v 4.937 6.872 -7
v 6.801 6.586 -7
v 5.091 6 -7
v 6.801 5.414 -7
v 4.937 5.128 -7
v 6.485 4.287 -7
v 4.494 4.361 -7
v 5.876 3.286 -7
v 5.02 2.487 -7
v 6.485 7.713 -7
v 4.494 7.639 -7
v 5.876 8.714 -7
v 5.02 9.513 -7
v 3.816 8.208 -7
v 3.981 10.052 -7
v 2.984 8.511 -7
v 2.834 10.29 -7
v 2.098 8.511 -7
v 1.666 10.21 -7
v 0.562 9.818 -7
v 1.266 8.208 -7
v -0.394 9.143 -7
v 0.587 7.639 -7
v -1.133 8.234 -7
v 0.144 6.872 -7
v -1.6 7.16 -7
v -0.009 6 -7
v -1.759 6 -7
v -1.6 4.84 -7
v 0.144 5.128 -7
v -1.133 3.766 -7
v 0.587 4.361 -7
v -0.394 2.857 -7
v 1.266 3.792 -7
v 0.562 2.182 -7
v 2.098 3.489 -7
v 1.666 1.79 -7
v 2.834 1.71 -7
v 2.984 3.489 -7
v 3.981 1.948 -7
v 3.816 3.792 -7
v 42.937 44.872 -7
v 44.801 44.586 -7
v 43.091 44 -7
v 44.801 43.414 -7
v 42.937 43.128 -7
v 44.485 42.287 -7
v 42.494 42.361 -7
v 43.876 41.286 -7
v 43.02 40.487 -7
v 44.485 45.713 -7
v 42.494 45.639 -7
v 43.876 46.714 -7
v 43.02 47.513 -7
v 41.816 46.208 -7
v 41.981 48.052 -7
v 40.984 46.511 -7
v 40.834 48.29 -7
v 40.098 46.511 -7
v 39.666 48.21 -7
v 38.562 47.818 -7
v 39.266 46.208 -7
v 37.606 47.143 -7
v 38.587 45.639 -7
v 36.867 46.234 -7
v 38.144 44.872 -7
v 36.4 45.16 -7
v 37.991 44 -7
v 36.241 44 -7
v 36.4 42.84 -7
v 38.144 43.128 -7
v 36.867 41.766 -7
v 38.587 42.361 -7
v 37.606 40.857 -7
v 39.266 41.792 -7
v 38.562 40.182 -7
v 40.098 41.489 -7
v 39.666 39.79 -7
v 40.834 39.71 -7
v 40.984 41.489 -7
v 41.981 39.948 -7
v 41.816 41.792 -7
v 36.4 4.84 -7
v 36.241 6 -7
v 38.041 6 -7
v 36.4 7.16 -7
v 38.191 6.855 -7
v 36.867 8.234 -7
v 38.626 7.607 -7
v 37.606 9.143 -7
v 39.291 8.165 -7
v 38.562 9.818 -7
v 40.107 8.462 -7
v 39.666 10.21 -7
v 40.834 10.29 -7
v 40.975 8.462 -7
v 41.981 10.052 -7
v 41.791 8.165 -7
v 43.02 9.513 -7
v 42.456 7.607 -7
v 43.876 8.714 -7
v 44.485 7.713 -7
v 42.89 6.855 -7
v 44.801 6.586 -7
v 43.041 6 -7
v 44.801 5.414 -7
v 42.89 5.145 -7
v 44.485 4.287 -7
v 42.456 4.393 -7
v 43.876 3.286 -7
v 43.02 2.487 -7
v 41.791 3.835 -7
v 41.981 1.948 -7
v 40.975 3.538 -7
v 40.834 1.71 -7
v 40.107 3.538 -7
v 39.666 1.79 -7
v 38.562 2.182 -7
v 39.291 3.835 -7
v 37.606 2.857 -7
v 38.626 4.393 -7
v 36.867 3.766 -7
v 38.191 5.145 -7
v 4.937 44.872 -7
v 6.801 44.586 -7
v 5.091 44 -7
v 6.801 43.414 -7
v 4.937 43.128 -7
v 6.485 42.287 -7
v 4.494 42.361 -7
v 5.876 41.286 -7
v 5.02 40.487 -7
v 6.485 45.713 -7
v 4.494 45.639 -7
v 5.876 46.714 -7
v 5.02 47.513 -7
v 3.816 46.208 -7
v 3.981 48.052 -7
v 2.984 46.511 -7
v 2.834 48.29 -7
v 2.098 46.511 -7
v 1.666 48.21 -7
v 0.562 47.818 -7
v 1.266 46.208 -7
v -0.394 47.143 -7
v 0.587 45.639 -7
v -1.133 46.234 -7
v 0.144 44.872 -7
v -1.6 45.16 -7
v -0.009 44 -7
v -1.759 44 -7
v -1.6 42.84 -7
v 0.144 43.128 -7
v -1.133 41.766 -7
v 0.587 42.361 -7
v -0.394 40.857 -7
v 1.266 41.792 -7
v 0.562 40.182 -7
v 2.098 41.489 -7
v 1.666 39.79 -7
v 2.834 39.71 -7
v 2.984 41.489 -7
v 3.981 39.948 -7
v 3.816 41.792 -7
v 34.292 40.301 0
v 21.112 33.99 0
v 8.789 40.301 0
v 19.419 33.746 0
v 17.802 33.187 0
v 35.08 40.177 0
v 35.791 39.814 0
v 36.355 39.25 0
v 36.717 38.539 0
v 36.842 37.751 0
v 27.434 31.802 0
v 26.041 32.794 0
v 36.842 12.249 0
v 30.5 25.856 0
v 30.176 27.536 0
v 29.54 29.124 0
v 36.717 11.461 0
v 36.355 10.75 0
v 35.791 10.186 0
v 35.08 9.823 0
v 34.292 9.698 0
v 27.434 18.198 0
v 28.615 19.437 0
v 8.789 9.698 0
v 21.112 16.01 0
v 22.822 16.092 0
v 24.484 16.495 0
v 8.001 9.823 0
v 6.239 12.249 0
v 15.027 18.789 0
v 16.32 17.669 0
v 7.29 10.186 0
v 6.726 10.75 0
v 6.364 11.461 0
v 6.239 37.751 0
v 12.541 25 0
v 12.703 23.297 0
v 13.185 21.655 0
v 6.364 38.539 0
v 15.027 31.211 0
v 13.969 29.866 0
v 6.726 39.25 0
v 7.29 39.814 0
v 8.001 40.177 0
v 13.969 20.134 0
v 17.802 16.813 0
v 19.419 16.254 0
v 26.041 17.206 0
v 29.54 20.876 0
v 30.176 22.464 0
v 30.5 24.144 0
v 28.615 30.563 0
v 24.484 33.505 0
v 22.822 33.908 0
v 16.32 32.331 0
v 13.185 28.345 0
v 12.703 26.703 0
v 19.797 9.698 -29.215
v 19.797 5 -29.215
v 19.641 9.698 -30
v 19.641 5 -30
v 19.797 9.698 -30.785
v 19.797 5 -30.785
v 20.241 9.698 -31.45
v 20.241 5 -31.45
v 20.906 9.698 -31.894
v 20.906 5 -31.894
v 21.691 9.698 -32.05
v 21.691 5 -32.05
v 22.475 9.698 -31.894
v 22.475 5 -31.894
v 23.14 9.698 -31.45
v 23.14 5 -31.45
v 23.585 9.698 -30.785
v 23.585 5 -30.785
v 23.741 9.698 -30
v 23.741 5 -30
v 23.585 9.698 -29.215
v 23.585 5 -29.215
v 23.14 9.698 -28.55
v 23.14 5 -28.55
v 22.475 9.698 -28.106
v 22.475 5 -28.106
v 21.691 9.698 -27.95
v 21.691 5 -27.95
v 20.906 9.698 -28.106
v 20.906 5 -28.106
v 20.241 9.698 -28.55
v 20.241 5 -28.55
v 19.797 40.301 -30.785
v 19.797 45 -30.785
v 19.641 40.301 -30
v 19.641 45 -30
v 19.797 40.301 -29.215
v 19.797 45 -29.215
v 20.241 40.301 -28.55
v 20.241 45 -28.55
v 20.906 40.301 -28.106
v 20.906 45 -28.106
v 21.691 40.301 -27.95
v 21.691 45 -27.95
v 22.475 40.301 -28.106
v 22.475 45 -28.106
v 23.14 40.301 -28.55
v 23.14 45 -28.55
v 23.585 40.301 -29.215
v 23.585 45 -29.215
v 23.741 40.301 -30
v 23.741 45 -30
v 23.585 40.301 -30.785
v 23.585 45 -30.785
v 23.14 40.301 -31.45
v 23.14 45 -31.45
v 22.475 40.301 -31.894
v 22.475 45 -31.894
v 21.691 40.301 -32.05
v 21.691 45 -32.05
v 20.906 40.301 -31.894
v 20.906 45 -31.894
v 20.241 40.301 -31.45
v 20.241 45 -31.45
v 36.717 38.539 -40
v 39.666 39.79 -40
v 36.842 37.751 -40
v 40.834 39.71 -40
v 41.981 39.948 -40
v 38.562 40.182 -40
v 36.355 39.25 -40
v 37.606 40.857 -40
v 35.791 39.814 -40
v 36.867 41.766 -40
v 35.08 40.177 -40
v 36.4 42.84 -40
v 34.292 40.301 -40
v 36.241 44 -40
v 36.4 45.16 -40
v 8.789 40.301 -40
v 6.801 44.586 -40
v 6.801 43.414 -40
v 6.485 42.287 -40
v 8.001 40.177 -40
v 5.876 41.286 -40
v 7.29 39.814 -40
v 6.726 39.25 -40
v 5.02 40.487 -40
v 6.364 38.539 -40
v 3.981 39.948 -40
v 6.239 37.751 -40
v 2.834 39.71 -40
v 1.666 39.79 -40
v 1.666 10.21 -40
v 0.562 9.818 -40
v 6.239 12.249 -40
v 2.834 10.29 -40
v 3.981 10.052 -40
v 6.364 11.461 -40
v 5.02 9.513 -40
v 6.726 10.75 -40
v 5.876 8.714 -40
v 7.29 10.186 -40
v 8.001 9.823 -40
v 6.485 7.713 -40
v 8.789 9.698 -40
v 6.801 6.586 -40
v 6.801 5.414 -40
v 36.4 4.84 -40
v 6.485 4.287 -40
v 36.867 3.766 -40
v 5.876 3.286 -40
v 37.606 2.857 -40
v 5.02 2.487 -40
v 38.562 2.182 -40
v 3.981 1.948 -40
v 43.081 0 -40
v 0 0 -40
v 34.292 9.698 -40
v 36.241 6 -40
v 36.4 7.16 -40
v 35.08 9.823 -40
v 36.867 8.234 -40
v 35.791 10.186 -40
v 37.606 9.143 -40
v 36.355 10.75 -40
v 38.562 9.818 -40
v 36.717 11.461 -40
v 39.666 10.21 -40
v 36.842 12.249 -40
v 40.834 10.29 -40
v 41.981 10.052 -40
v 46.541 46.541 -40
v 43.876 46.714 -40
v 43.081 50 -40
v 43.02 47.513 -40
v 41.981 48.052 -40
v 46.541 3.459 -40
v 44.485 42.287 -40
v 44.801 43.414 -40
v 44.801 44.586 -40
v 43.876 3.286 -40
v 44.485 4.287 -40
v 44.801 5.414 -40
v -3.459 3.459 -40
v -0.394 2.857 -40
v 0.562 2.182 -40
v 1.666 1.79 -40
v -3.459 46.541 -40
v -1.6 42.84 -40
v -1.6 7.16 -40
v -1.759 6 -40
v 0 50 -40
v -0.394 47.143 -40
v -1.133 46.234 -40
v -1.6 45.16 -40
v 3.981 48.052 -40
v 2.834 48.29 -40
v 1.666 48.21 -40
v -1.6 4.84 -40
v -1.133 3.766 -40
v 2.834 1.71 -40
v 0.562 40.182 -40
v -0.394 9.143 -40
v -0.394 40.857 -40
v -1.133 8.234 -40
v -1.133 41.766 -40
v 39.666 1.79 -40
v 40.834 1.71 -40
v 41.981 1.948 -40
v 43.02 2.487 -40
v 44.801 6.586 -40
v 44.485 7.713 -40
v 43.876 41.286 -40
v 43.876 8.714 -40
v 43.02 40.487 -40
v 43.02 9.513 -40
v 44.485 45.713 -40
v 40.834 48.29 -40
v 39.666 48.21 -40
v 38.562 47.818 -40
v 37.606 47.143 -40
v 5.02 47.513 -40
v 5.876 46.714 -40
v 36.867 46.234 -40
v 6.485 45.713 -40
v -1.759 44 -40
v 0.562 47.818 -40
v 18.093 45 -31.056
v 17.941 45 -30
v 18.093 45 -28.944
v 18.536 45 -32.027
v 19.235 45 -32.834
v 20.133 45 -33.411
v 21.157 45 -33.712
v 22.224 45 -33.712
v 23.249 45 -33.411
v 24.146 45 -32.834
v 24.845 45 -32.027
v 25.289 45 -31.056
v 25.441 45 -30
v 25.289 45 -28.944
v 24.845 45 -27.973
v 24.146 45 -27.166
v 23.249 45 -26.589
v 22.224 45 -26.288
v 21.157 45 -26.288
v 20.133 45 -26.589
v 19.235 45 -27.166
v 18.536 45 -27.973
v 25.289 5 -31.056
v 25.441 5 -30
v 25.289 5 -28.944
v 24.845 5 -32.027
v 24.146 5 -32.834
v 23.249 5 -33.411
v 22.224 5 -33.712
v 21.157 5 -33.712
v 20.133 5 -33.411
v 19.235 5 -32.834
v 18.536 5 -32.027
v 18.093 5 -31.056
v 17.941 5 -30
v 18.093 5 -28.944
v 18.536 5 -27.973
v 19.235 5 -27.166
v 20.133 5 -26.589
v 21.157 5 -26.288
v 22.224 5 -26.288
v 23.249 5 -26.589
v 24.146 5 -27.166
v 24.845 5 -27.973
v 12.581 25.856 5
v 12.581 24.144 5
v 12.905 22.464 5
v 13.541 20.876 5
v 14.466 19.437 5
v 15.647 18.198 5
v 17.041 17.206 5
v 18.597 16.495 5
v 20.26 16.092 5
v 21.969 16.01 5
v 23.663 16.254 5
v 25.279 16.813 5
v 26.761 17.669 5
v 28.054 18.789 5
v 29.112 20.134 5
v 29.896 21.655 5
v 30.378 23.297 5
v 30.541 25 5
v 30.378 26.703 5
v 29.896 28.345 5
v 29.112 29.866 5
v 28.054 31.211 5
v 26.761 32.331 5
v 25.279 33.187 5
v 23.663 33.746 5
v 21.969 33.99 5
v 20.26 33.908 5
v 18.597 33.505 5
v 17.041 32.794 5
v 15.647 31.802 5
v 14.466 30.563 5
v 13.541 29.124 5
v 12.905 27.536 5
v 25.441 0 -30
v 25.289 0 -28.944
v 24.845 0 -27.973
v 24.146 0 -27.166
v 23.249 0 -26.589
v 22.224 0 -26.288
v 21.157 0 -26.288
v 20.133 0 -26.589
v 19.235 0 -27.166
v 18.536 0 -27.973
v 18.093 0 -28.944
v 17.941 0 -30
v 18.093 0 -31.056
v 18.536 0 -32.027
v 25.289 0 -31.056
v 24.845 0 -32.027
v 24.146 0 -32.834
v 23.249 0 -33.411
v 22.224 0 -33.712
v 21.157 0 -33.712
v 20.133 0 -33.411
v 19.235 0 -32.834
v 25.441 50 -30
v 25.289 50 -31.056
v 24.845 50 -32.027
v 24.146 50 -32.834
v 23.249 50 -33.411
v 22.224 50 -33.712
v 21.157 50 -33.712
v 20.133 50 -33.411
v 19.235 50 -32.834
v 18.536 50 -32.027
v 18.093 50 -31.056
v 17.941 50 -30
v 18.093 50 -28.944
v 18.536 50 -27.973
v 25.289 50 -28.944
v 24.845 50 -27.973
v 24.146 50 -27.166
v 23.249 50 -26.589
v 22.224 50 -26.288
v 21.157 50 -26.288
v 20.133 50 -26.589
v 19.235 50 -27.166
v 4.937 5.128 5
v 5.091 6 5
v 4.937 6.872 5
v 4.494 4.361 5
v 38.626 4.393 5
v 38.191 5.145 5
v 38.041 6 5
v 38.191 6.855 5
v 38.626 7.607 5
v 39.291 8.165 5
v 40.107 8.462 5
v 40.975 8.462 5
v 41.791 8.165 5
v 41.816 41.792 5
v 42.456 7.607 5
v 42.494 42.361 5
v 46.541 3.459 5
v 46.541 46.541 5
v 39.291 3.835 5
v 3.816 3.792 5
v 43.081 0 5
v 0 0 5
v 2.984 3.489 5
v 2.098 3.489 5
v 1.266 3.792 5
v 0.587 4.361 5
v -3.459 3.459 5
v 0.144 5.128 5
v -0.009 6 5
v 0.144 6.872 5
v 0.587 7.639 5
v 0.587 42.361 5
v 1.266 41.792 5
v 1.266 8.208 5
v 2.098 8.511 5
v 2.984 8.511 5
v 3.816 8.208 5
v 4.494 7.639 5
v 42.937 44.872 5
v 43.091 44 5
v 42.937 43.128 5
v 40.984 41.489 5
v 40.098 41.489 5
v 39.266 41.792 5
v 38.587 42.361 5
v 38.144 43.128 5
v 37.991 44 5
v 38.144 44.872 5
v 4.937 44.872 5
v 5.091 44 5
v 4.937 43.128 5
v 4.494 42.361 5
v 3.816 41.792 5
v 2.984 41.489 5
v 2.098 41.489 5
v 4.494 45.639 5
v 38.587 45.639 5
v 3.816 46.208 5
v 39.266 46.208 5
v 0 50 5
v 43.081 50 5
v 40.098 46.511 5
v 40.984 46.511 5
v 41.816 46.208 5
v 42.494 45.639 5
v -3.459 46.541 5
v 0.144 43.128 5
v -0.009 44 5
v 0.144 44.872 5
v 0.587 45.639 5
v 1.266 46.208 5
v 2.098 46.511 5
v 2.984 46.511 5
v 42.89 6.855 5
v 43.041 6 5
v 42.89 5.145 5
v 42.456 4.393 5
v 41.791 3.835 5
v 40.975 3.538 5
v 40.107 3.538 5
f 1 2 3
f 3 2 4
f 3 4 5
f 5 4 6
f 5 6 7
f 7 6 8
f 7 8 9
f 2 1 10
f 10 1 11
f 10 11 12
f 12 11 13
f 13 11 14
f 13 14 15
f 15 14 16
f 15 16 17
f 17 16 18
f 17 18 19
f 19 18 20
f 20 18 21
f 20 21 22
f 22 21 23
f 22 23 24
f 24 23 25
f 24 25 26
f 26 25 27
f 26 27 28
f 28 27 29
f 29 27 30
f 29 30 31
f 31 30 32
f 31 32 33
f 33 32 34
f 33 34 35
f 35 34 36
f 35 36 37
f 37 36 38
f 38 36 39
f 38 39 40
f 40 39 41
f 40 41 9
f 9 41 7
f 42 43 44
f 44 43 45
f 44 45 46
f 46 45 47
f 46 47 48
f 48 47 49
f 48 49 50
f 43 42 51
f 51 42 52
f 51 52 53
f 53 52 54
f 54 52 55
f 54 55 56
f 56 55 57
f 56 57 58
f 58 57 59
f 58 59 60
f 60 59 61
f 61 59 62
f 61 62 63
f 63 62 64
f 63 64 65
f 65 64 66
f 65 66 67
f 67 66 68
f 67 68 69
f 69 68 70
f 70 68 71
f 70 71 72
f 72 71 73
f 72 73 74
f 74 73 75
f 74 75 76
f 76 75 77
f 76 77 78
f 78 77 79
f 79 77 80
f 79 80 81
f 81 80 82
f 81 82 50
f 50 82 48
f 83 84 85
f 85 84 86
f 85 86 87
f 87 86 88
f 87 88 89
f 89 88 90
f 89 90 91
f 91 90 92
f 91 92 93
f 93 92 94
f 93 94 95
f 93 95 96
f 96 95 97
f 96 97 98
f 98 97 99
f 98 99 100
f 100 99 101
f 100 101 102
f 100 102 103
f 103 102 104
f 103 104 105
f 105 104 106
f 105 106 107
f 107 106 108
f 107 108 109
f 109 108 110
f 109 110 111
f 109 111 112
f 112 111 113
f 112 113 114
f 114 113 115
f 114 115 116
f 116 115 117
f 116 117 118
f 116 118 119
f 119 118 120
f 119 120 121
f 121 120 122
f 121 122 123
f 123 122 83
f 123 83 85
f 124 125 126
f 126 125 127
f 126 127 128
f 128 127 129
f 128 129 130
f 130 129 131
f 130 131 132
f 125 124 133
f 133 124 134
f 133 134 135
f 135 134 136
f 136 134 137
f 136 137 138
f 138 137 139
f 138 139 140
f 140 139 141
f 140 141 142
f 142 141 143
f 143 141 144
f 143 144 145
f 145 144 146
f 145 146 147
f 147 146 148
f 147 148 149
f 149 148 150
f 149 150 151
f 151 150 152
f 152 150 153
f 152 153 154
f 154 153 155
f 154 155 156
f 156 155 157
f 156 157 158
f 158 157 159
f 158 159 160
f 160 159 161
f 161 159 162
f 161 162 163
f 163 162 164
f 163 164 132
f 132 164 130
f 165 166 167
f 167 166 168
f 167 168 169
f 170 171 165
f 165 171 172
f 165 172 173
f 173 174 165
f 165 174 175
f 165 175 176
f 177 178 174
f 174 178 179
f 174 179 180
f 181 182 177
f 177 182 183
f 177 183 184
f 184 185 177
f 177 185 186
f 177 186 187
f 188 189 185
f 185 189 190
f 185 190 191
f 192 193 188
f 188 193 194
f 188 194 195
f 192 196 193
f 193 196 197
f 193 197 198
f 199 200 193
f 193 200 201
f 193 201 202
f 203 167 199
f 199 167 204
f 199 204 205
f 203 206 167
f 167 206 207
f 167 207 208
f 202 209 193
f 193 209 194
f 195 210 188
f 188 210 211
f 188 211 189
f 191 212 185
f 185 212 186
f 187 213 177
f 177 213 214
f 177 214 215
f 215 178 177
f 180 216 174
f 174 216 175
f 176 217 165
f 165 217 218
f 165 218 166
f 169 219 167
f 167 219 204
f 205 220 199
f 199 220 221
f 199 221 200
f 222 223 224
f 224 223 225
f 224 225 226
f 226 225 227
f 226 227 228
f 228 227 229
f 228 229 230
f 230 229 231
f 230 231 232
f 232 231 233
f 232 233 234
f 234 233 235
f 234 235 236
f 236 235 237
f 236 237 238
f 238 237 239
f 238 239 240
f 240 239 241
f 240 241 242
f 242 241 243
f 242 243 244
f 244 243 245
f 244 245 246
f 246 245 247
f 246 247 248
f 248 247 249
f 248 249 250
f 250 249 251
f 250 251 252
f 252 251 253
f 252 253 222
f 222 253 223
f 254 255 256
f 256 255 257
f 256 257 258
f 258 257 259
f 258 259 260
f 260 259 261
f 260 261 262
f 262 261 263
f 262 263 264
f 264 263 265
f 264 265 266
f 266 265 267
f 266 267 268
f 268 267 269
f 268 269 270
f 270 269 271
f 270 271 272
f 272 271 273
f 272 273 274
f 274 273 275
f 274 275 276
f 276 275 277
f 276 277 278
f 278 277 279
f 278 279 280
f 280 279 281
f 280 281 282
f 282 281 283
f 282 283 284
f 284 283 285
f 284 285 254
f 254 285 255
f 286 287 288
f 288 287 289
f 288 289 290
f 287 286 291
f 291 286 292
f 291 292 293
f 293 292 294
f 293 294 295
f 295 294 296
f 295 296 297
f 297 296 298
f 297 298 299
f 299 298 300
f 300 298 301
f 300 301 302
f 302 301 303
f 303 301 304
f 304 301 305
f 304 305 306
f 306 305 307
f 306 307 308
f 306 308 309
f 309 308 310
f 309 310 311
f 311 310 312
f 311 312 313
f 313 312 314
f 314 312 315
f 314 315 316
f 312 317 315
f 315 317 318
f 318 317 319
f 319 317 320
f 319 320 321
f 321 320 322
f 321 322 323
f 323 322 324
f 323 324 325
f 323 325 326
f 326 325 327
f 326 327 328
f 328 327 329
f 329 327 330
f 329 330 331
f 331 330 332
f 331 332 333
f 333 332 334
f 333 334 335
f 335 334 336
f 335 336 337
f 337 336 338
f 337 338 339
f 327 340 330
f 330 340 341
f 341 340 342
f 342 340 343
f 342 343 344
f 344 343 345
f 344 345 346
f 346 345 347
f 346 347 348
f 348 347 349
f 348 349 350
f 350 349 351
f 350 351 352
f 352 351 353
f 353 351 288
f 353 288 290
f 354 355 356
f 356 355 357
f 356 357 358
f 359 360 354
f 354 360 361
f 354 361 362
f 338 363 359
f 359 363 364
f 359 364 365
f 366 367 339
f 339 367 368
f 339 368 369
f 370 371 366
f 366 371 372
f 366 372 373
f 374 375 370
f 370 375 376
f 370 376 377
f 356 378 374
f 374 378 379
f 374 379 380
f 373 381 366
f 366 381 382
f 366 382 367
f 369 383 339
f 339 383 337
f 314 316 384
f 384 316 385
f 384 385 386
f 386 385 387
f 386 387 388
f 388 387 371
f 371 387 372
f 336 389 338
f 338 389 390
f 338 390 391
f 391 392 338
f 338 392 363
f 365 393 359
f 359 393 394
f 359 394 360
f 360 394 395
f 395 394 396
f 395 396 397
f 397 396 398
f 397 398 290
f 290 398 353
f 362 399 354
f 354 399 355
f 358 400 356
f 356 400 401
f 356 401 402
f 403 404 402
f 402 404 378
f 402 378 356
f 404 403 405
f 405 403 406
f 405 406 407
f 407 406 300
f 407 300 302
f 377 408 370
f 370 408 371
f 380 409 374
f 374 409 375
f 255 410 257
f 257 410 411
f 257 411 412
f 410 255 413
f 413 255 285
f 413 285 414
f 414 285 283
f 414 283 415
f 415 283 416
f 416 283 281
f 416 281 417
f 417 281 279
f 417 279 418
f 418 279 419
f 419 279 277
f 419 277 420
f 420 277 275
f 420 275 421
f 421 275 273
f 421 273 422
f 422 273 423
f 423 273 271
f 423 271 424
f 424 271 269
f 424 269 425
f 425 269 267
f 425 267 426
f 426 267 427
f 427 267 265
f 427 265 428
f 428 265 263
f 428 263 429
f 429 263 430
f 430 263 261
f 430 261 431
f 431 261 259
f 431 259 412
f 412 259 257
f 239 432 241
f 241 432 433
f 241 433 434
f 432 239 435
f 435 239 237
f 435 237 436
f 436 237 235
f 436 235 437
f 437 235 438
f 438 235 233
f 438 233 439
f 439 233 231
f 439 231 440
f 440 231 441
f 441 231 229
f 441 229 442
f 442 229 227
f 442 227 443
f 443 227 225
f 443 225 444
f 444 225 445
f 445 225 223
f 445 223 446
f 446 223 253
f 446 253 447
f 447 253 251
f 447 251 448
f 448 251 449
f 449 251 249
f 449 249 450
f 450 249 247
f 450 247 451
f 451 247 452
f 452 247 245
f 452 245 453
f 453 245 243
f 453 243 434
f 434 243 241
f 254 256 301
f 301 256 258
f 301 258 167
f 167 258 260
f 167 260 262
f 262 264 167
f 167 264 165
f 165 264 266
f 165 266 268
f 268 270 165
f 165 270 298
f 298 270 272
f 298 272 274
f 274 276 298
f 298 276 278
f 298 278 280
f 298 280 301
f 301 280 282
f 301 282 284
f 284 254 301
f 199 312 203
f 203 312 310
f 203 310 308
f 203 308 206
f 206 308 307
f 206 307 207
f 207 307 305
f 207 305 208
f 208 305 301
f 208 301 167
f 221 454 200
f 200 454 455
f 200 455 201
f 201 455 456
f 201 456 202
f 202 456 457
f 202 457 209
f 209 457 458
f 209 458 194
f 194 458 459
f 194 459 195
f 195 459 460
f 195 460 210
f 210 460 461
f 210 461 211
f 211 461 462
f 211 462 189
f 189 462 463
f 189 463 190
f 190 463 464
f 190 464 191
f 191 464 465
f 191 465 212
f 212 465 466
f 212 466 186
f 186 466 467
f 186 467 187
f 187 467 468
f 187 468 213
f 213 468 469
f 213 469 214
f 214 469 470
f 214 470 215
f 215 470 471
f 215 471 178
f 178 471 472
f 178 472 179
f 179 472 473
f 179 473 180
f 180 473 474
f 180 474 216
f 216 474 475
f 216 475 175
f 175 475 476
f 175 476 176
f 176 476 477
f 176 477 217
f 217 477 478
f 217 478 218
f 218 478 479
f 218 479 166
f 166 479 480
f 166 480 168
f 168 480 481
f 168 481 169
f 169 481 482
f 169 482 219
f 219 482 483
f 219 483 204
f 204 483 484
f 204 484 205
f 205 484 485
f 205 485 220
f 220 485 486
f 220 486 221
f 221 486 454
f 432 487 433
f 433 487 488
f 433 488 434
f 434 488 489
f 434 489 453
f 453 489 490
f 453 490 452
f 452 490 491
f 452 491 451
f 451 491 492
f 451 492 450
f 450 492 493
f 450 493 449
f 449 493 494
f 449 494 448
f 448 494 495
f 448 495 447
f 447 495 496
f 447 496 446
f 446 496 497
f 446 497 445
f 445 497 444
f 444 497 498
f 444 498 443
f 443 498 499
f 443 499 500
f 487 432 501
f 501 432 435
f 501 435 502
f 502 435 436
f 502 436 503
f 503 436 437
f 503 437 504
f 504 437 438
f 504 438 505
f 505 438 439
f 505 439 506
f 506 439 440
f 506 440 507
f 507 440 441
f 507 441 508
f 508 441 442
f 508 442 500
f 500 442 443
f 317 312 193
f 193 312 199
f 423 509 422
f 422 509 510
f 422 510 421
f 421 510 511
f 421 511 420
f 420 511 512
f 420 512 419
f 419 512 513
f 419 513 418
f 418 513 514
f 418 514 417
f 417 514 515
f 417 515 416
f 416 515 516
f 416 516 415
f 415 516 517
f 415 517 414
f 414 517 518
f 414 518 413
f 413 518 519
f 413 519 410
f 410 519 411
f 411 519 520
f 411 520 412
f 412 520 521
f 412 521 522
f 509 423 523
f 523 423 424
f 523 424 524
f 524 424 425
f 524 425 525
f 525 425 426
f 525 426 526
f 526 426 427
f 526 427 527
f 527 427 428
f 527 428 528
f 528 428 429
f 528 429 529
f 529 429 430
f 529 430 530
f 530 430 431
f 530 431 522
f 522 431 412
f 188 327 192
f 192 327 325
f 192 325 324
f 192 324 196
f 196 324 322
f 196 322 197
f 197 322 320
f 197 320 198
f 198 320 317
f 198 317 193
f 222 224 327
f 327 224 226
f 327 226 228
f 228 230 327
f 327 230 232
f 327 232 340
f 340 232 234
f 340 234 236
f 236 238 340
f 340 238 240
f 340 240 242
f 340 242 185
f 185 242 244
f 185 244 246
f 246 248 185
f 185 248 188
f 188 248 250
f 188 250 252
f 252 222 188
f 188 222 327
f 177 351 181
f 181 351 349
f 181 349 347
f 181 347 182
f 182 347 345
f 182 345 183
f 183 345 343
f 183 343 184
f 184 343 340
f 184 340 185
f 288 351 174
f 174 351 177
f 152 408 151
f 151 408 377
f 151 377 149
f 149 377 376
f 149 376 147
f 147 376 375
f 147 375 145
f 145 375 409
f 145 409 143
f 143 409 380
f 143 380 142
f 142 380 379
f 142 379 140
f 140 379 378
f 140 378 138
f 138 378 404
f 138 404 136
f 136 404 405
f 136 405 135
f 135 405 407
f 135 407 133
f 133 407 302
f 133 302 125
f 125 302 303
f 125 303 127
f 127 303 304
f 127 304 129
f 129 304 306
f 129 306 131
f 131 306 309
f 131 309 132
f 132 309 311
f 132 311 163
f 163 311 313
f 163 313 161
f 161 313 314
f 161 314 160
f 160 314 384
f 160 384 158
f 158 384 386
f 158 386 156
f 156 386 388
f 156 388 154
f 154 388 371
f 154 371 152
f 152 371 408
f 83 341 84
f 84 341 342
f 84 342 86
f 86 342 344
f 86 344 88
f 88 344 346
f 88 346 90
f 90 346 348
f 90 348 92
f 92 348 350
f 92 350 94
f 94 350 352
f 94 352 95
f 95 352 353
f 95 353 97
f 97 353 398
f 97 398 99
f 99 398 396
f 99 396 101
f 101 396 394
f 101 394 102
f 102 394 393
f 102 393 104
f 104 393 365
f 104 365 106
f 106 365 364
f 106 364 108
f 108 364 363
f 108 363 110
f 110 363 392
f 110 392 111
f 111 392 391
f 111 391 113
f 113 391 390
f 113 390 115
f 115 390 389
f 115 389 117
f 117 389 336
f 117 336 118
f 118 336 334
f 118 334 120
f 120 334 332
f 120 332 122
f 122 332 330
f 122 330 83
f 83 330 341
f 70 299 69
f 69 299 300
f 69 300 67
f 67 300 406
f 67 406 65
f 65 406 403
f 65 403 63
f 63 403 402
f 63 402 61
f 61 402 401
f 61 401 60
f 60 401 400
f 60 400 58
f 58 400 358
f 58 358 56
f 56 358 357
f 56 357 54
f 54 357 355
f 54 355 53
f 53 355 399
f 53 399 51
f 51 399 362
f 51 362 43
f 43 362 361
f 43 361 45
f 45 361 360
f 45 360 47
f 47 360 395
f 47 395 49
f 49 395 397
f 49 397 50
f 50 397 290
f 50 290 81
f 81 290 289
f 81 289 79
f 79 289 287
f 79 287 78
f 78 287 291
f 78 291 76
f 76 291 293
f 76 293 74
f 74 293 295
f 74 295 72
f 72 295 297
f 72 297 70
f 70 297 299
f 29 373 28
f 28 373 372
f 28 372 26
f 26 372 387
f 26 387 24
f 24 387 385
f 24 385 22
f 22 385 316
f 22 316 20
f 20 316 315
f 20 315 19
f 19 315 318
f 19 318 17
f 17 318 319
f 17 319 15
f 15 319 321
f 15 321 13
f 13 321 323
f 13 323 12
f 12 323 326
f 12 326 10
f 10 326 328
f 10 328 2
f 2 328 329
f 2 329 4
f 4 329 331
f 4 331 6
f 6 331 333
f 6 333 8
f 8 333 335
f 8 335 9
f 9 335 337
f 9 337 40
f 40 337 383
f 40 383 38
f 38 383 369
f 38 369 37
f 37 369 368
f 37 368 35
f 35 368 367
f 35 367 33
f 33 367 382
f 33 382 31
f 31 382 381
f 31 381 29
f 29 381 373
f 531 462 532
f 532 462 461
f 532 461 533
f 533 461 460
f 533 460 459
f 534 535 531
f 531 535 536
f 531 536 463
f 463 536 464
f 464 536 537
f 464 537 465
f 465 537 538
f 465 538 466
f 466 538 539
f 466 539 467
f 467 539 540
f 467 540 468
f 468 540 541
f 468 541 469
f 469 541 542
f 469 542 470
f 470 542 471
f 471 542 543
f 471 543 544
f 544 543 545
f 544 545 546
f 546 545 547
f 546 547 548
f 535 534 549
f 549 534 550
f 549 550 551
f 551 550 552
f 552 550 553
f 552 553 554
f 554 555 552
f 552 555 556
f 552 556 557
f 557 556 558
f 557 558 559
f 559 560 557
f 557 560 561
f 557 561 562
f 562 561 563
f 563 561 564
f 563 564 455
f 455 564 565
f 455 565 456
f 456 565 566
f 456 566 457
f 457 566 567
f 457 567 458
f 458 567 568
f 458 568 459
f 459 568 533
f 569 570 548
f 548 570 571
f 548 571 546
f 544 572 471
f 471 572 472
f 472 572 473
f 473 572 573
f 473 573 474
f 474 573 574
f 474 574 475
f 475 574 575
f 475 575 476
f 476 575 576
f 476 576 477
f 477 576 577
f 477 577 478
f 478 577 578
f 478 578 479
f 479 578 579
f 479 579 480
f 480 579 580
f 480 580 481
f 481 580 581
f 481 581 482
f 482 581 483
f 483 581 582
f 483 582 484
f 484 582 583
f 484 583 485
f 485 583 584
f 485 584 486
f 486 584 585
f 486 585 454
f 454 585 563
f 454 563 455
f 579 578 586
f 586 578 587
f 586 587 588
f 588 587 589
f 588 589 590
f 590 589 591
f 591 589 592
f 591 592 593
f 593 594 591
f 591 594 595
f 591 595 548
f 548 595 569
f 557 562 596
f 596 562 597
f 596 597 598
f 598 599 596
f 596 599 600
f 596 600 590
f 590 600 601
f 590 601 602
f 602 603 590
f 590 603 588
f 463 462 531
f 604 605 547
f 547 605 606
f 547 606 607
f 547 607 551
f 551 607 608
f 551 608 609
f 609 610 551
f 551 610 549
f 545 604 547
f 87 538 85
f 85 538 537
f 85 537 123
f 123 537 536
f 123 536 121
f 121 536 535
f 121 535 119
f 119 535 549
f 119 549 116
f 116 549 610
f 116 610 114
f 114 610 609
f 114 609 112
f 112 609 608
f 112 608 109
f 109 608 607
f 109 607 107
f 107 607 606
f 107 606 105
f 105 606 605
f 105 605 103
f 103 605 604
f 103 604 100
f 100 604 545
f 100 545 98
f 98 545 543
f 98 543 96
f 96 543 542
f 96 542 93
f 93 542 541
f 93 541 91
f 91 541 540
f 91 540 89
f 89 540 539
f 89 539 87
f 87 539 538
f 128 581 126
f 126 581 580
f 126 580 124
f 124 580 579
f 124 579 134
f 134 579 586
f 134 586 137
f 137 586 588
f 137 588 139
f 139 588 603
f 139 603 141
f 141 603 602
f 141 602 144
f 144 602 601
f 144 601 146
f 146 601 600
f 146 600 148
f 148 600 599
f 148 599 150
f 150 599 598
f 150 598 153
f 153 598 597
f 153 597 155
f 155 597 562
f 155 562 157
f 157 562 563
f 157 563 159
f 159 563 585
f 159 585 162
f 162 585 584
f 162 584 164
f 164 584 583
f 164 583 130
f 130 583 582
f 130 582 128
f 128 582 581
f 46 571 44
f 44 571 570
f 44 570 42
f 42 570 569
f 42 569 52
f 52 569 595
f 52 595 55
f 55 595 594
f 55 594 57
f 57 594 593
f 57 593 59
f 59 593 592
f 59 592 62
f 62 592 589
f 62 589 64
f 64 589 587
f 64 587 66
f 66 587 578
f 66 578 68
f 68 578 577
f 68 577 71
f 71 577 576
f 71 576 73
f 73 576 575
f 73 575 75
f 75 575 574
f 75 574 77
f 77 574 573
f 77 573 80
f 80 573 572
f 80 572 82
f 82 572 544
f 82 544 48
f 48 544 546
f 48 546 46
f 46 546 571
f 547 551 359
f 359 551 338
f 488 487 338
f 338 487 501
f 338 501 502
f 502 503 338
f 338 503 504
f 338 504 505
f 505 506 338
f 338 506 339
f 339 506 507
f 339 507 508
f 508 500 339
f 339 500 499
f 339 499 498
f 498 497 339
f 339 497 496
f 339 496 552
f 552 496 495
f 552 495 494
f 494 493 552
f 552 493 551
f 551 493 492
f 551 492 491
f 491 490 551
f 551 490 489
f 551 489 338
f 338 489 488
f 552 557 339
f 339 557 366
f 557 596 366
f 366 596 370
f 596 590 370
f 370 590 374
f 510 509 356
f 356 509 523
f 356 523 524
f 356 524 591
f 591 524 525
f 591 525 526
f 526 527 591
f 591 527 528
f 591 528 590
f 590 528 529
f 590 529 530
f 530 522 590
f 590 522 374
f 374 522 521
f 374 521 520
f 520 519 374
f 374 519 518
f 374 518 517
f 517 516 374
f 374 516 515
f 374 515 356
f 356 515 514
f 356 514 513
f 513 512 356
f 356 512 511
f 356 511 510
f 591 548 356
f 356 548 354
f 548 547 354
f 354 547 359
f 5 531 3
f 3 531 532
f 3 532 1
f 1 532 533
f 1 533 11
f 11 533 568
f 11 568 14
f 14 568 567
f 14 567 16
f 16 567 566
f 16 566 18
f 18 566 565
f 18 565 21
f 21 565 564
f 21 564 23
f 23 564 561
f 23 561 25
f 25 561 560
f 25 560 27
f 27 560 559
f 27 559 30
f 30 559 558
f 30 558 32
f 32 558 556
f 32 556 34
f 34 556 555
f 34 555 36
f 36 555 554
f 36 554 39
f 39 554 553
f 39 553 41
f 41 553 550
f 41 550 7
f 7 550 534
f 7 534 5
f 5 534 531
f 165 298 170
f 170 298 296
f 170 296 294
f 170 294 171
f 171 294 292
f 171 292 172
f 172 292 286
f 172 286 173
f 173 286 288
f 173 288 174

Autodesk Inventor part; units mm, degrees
ref_plane "YZ Plane" through (0, 0, 0) normal (1, 0, 0) x (0, 1, 0)
ref_plane "XZ Plane" through (0, 0, 0) normal (0, 1, 0) x (-1, 0, 0)
ref_plane "XY Plane" through (0, 0, 0) normal (0, 0, 1) x (1, 0, 0)
sketch "Sketch11" plane through (0, 0, 0) normal (0, 0, 1) x (1, 0, 0)
  line L0 (-3.4593, 3.4593) -> (0, 0)
  line L1 (-3.4593, 3.4593) -> (-3.4593, 46.5407)
  line L2 (0, 50) -> (-3.4593, 46.5407)
  line L3 (43.0814, 50) -> (0, 50)
  line L4 (46.5407, 46.5407) -> (43.0814, 50)
  line L5 (46.5407, 3.4593) -> (46.5407, 46.5407)
  line L6 (43.0814, 0) -> (46.5407, 3.4593)
  line L7 (43.0814, 0) -> (0, 0)
extrude "Extrusion8" add sketch "Sketch11" along normal blind 5
sketch "Sketch16" plane through (0, 0, 0) normal (0, 0, -1) x (-1, 0, 0)
  line L0 (-27.0407, 40) -> (-34.0407, 40)
  line L1 (-36.5407, 37.5) -> (-36.5407, 30.5)
  arc A0 (-34.0407, 40) -> (-36.5407, 37.5) centre (-34.0407, 37.5) ccw
  line L2 (-9.0407, 40) -> (-16.0407, 40)
  arc A1 (-6.5407, 37.5) -> (-9.0407, 40) centre (-9.0407, 37.5) ccw
  line L3 (-6.5407, 30.5) -> (-6.5407, 37.5)
  line L4 (-6.5407, 12.5) -> (-6.5407, 19.5)
  arc A2 (-9.0407, 10) -> (-6.5407, 12.5) centre (-9.0407, 12.5) ccw
  line L5 (-16.0407, 10) -> (-9.0407, 10)
  line L6 (-34.0407, 10) -> (-27.0407, 10)
  arc A3 (-36.5407, 12.5) -> (-34.0407, 10) centre (-34.0407, 12.5) ccw
  line L7 (-36.5407, 19.5) -> (-36.5407, 12.5)
  line L8 (0, 50) -> (3.4593, 46.5407) projected
  line L9 (-43.0814, 0) -> (-46.5407, 3.4593) projected
  line L10 (-46.5407, 46.5407) -> (-43.0814, 50) projected
  line L11 (-43.0814, 0) -> (-43.0814, 50)
  line L12 (3.4593, 3.4593) -> (0, 0) projected
  line L13 (-6.5407, 30.5) -> (-6.5407, 19.5)
  line L14 (-16.0407, 40) -> (-27.0407, 40)
  line L15 (-36.5407, 30.5) -> (-36.5407, 19.5)
  line L16 (-27.0407, 10) -> (-16.0407, 10)
  circle A4 centre (-2.5407, 44) radius 2.5
  circle A5 centre (-40.5407, 6) radius 2.5
  circle A6 centre (-2.5407, 6) radius 2.5
  circle A7 centre (-40.5407, 44) radius 2.5
  line L17 (0, 50) -> (3.4593, 46.5407)
  line L18 (3.4593, 46.5407) -> (3.4593, 3.4593) projected
  line L19 (0, 0) -> (-43.0814, 0) projected
  line L20 (3.4593, 3.4593) -> (0, 0)
  line L21 (0, 0) -> (-43.0814, 0)
  line L22 (-43.0814, 0) -> (-46.5407, 3.4593) projected
  line L23 (-43.0814, 0) -> (-46.5407, 3.4593)
  line L24 (-46.5407, 3.4593) -> (-46.5407, 46.5407) projected
  line L25 (-46.5407, 3.4593) -> (-46.5407, 46.5407)
  line L26 (-46.5407, 46.5407) -> (-43.0814, 50)
  line L27 (0, 50) -> (-43.0814, 50) projected
  line L28 (0, 50) -> (-43.0814, 50)
  dimension "d44" = 5
  dimension "d45" = 5
  dimension "d46" = 5
  dimension "d47" = 5
extrude "Extrusion11" add sketch "Sketch16" along normal blind 15
sketch "Sketch18" plane through (0, 0, -15) normal (0, 0, -1) x (-1, 0, 0)
  circle A0 centre (-2.5407, 6) radius 2.5 projected
  circle A1 centre (-2.5407, 6) radius 2.5
  circle A2 centre (-40.5407, 6) radius 2.5 projected
  circle A3 centre (-40.5407, 6) radius 2.5
  circle A4 centre (-40.5407, 44) radius 2.5 projected
  circle A5 centre (-40.5407, 44) radius 2.5
  circle A6 centre (-2.5407, 44) radius 2.5 projected
  circle A7 centre (-2.5407, 44) radius 2.5
  point P0 (0, 0)
extrude "Extrusion12" cut sketch "Sketch18" against normal blind 100
sketch "Sketch19" plane through (0, 0, -15) normal (0, 0, -1) x (-1, 0, 0)
  circle A0 centre (-2.5407, 6) radius 2.5 projected
  circle A1 centre (-2.5407, 6) radius 4.3
  circle A2 centre (-40.5407, 6) radius 2.5 projected
  circle A3 centre (-40.5407, 6) radius 4.3
  circle A4 centre (-2.5407, 44) radius 2.5 projected
  circle A5 centre (-2.5407, 44) radius 4.3
  circle A6 centre (-40.5407, 44) radius 2.5 projected
  circle A7 centre (-40.5407, 44) radius 4.3
  point P0 (0, 0)
  dimension "d54" = 8.6
  dimension "d55" = 8.6
  dimension "d56" = 8.6
  dimension "d57" = 8.6
extrude "Extrusion13" cut sketch "Sketch19" against normal blind 10 contours A0 | A1 | A2 | A3 | A5 | A6 | A7
sketch "Sketch20" plane through (0, 0, -15) normal (0, 0, -1) x (-1, 0, 0)
  line L0 (0, 50) -> (-43.0814, 50) projected
  line L1 (-43.0814, 50) -> (-46.5407, 46.5407) projected
  line L2 (-46.5407, 46.5407) -> (-46.5407, 3.4593) projected
  line L3 (-46.5407, 3.4593) -> (-43.0814, 0) projected
  line L4 (-43.0814, 0) -> (0, 0) projected
  line L5 (0, 0) -> (3.4593, 3.4593) projected
  line L6 (3.4593, 3.4593) -> (3.4593, 46.5407) projected
  line L7 (3.4593, 46.5407) -> (0, 50) projected
  circle A0 centre (-2.5407, 44) radius 4.3 projected
  circle A1 centre (-40.5407, 44) radius 4.3 projected
  circle A2 centre (-40.5407, 6) radius 4.3 projected
  circle A3 centre (-2.5407, 6) radius 4.3 projected
  arc A4 (-9.0407, 10) -> (-6.5407, 12.5) centre (-9.0407, 12.5) ccw projected
  line L8 (-9.0407, 10) -> (-34.0407, 10) projected
  line L9 (-36.5407, 12.5) -> (-36.5407, 37.5) projected
  arc A5 (-36.5407, 12.5) -> (-34.0407, 10) centre (-34.0407, 12.5) ccw projected
  line L10 (-6.5407, 37.5) -> (-6.5407, 12.5) projected
  arc A6 (-6.5407, 37.5) -> (-9.0407, 40) centre (-9.0407, 37.5) ccw projected
  line L11 (-34.0407, 40) -> (-9.0407, 40) projected
  arc A7 (-34.0407, 40) -> (-36.5407, 37.5) centre (-34.0407, 37.5) ccw projected
extrude "Extrusion14" add sketch "Sketch20" along normal blind 25
sketch "Sketch21" plane through (0, 50, 5) normal (0, 1, 0) x (1, 0, 0)
  line L0 (-1.7593, 45) -> (6.8407, 45) projected
  circle A0 centre (21.6907, 35) radius 2
  dimension "d63" = 4
extrude "Extrusion15" cut sketch "Sketch21" against normal blind 500
sketch "Sketch22" plane through (0, 50, 5) normal (0, 1, 0) x (1, 0, 0)
  circle A0 centre (21.6907, 35) radius 2 projected
  circle A1 centre (21.6907, 35) radius 3.75
  point P0 (0, 5)
  dimension "d67" = 7.5
extrude "Extrusion16" cut sketch "Sketch22" against normal blind 5 contours A0 | A1
sketch "Sketch23" plane through (0, 0, 5) normal (0, -1, 0) x (1, 0, 0)
  circle A0 centre (21.6907, -35) radius 2 projected
  circle A1 centre (21.6907, -35) radius 3.75
  point P0 (0, -5)
  dimension "d70" = 7.5
extrude "Extrusion17" cut sketch "Sketch23" against normal blind 5
sketch "Sketch25" plane through (0, 0, 5) normal (0, 0, 1) x (1, 0, 0)
  circle A0 centre (2.5407, 6) radius 2.5 projected
  circle A1 centre (40.5407, 44) radius 2.5 projected
  circle A2 centre (2.5407, 44) radius 2.5 projected
  circle A3 centre (40.5407, 6) radius 4.3 projected
  circle A4 centre (21.5407, 25) radius 9
  point P0 (0, 0)
  dimension "d75" = 18
extrude "Extrusion18" cut sketch "Sketch25" against normal blind 20 contours A4
sketch "Sketch26" plane through (0, 0, -40) normal (0, 0, -1) x (-1, 0, 0)
  circle A0 centre (-21.5407, 25) radius 9 projected
  arc A1 (-6.5407, 37.5) -> (-9.0407, 40) centre (-9.0407, 37.5) ccw projected
  line L0 (-9.0407, 40) -> (-34.0407, 40) projected
  arc A2 (-34.0407, 40) -> (-36.5407, 37.5) centre (-34.0407, 37.5) ccw projected
  line L1 (-36.5407, 37.5) -> (-36.5407, 12.5) projected
  arc A3 (-36.5407, 12.5) -> (-34.0407, 10) centre (-34.0407, 12.5) ccw projected
  line L2 (-34.0407, 10) -> (-9.0407, 10) projected
  arc A4 (-9.0407, 10) -> (-6.5407, 12.5) centre (-9.0407, 12.5) ccw projected
  line L3 (-6.5407, 12.5) -> (-6.5407, 37.5) projected
  circle A5 centre (-21.5407, 25) radius 9.144
  arc A6 (-6.3007, 37.7) -> (-8.8407, 40.24) centre (-8.8407, 37.7) ccw
  line L4 (-8.8407, 40.24) -> (-34.2407, 40.24)
  arc A7 (-34.2407, 40.24) -> (-36.7807, 37.7) centre (-34.2407, 37.7) ccw
  line L5 (-36.7807, 37.7) -> (-36.7807, 12.3)
  arc A8 (-36.7807, 12.3) -> (-34.2407, 9.76) centre (-34.2407, 12.3) ccw
  line L6 (-34.2407, 9.76) -> (-8.8407, 9.76)
  arc A9 (-8.8407, 9.76) -> (-6.3007, 12.3) centre (-8.8407, 12.3) ccw
  line L7 (-6.3007, 12.3) -> (-6.3007, 37.7)
  point P0 (0, 0)
extrude "Extrusion19" cut sketch "Sketch26" against normal blind 40 contours L7 A9 L6 A8 L5 A7 L4 A6
sketch "Sketch27" plane through (40.5407, 44, -5) normal (0, 0, -1) x (-1, 0, 0)
  circle A0 centre (38, -38) radius 2.5 projected
  circle A1 centre (38, -38) radius 4.3 projected
  circle A2 centre (0, -38) radius 2.5 projected
  circle A3 centre (0, -38) radius 4.3 projected
  circle A4 centre (0, 0) radius 2.5 projected
  circle A5 centre (0, 0) radius 4.3 projected
  circle A6 centre (38, 0) radius 4.3 projected
  circle A7 centre (38, 0) radius 2.5 projected
  point P0 (40.5407, -44)
extrude "Extrusion20" add sketch "Sketch27" along normal blind 2
sketch "Sketch28" plane through (0, 0, -40) normal (0, 0, -1) x (-1, 0, 0)
  arc A0 (-34.2407, 40.24) -> (-36.7807, 37.7) centre (-34.2407, 37.7) ccw projected
  line L0 (-34.2407, 40.24) -> (-8.8407, 40.24) projected
  arc A1 (-6.3007, 37.7) -> (-8.8407, 40.24) centre (-8.8407, 37.7) ccw projected
  line L1 (-6.3007, 37.7) -> (-6.3007, 12.3) projected
  arc A2 (-8.8407, 9.76) -> (-6.3007, 12.3) centre (-8.8407, 12.3) ccw projected
  line L2 (-8.8407, 9.76) -> (-34.2407, 9.76) projected
  arc A3 (-36.7807, 12.3) -> (-34.2407, 9.76) centre (-34.2407, 12.3) ccw projected
  line L3 (-36.7807, 12.3) -> (-36.7807, 37.7) projected
  line L4 (-43.0814, 50) -> (-46.5407, 46.5407) projected
  line L5 (-46.5407, 46.5407) -> (-46.5407, 3.4593) projected
  line L6 (-46.5407, 3.4593) -> (-43.0814, 0) projected
  line L7 (-43.0814, 0) -> (0, 0) projected
  line L8 (0, 0) -> (3.4593, 3.4593) projected
  line L9 (3.4593, 3.4593) -> (3.4593, 46.5407) projected
  line L10 (3.4593, 46.5407) -> (0, 50) projected
  line L11 (0, 50) -> (-43.0814, 50) projected
  circle A4 centre (-2.5407, 6) radius 4.3 projected
  circle A5 centre (-40.5407, 6) radius 4.3 projected
  circle A6 centre (-40.5407, 44) radius 4.3 projected
  circle A7 centre (-2.5407, 44) radius 4.3 projected
  arc A8 (-34.124, 40.1) -> (-36.6407, 37.5833) centre (-34.124, 37.5833) ccw
  line L12 (-34.124, 40.1) -> (-8.9574, 40.1)
  arc A9 (-6.4407, 37.5833) -> (-8.9574, 40.1) centre (-8.9574, 37.5833) ccw
  line L13 (-6.4407, 37.5833) -> (-6.4407, 12.4167)
  arc A10 (-8.9574, 9.9) -> (-6.4407, 12.4167) centre (-8.9574, 12.4167) ccw
  line L14 (-8.9574, 9.9) -> (-34.124, 9.9)
  arc A11 (-36.6407, 12.4167) -> (-34.124, 9.9) centre (-34.124, 12.4167) ccw
  line L15 (-36.6407, 12.4167) -> (-36.6407, 37.5833)
  circle A12 centre (-21.5407, 25) radius 9 projected
  circle A13 centre (-21.5407, 25) radius 8.9173
extrude "Extrusion21" add sketch "Sketch28" against normal blind 40 contours L0 A1 L1 A2 L2 A3 L3 A0
sketch "Sketch29" plane through (21.6907, 5, -30) normal (0, -1, 0) x (1, 0, 0)
  circle A0 centre (0, 0) radius 2 projected
  circle A1 centre (0, 0) radius 2.05
  point P0 (-21.6907, 30)
  dimension "d86" = 4.1
extrude "Extrusion22" cut sketch "Sketch29" against normal blind 100 contours A0 | A1
sketch "Sketch30" plane through (0, 0, -40) normal (0, 0, -1) x (-1, 0, 0)
  circle A0 centre (-2.5407, 44) radius 2.5 projected
  circle A1 centre (-2.5407, 44) radius 2.55
  circle A2 centre (-2.5407, 6) radius 4.3 projected
  circle A3 centre (-2.5407, 6) radius 2.55
  circle A4 centre (-40.5407, 6) radius 2.5 projected
  circle A5 centre (-40.5407, 6) radius 2.55
  circle A6 centre (-40.5407, 44) radius 2.5 projected
  circle A7 centre (-40.5407, 44) radius 2.55
  point P0 (0, 0)
  dimension "d89" = 5.1
  dimension "d90" = 5.1
  dimension "d91" = 5.1
  dimension "d92" = 5.1
extrude "Extrusion23" cut sketch "Sketch30" against normal blind 100 contours A0 | A1 | A3 | A4 | A6 | A7
sketch "Sketch31" plane through (0, 0, -40) normal (0, 0, -1) x (-1, 0, 0)
  arc A0 (-34.2919, 40.3015) -> (-36.8422, 37.7513) centre (-34.2919, 37.7513) ccw
  line L0 (-34.2919, 40.3015) -> (-8.7894, 40.3015)
  arc A1 (-6.2392, 37.7512) -> (-8.7894, 40.3015) centre (-8.7895, 37.7512) ccw
  line L1 (-6.2392, 37.7512) -> (-6.2392, 12.2487)
  arc A2 (-8.7895, 9.6985) -> (-6.2392, 12.2487) centre (-8.7895, 12.2487) ccw
  line L2 (-8.7895, 9.6985) -> (-34.292, 9.6985)
  arc A3 (-36.8422, 12.2488) -> (-34.292, 9.6985) centre (-34.292, 12.2488) ccw
  line L3 (-36.8422, 12.2488) -> (-36.8422, 37.7513)
  circle A4 centre (-21.5407, 25) radius 9 projected
  circle A5 centre (-21.5407, 25) radius 1
  point P0 (0, 0)
  dimension "d95" = 2
extrude "Extrusion24" cut sketch "Sketch31" against normal blind 40 contours L0 A1 L1 A2 L2 A3 L3 A0 | A4 | A5
